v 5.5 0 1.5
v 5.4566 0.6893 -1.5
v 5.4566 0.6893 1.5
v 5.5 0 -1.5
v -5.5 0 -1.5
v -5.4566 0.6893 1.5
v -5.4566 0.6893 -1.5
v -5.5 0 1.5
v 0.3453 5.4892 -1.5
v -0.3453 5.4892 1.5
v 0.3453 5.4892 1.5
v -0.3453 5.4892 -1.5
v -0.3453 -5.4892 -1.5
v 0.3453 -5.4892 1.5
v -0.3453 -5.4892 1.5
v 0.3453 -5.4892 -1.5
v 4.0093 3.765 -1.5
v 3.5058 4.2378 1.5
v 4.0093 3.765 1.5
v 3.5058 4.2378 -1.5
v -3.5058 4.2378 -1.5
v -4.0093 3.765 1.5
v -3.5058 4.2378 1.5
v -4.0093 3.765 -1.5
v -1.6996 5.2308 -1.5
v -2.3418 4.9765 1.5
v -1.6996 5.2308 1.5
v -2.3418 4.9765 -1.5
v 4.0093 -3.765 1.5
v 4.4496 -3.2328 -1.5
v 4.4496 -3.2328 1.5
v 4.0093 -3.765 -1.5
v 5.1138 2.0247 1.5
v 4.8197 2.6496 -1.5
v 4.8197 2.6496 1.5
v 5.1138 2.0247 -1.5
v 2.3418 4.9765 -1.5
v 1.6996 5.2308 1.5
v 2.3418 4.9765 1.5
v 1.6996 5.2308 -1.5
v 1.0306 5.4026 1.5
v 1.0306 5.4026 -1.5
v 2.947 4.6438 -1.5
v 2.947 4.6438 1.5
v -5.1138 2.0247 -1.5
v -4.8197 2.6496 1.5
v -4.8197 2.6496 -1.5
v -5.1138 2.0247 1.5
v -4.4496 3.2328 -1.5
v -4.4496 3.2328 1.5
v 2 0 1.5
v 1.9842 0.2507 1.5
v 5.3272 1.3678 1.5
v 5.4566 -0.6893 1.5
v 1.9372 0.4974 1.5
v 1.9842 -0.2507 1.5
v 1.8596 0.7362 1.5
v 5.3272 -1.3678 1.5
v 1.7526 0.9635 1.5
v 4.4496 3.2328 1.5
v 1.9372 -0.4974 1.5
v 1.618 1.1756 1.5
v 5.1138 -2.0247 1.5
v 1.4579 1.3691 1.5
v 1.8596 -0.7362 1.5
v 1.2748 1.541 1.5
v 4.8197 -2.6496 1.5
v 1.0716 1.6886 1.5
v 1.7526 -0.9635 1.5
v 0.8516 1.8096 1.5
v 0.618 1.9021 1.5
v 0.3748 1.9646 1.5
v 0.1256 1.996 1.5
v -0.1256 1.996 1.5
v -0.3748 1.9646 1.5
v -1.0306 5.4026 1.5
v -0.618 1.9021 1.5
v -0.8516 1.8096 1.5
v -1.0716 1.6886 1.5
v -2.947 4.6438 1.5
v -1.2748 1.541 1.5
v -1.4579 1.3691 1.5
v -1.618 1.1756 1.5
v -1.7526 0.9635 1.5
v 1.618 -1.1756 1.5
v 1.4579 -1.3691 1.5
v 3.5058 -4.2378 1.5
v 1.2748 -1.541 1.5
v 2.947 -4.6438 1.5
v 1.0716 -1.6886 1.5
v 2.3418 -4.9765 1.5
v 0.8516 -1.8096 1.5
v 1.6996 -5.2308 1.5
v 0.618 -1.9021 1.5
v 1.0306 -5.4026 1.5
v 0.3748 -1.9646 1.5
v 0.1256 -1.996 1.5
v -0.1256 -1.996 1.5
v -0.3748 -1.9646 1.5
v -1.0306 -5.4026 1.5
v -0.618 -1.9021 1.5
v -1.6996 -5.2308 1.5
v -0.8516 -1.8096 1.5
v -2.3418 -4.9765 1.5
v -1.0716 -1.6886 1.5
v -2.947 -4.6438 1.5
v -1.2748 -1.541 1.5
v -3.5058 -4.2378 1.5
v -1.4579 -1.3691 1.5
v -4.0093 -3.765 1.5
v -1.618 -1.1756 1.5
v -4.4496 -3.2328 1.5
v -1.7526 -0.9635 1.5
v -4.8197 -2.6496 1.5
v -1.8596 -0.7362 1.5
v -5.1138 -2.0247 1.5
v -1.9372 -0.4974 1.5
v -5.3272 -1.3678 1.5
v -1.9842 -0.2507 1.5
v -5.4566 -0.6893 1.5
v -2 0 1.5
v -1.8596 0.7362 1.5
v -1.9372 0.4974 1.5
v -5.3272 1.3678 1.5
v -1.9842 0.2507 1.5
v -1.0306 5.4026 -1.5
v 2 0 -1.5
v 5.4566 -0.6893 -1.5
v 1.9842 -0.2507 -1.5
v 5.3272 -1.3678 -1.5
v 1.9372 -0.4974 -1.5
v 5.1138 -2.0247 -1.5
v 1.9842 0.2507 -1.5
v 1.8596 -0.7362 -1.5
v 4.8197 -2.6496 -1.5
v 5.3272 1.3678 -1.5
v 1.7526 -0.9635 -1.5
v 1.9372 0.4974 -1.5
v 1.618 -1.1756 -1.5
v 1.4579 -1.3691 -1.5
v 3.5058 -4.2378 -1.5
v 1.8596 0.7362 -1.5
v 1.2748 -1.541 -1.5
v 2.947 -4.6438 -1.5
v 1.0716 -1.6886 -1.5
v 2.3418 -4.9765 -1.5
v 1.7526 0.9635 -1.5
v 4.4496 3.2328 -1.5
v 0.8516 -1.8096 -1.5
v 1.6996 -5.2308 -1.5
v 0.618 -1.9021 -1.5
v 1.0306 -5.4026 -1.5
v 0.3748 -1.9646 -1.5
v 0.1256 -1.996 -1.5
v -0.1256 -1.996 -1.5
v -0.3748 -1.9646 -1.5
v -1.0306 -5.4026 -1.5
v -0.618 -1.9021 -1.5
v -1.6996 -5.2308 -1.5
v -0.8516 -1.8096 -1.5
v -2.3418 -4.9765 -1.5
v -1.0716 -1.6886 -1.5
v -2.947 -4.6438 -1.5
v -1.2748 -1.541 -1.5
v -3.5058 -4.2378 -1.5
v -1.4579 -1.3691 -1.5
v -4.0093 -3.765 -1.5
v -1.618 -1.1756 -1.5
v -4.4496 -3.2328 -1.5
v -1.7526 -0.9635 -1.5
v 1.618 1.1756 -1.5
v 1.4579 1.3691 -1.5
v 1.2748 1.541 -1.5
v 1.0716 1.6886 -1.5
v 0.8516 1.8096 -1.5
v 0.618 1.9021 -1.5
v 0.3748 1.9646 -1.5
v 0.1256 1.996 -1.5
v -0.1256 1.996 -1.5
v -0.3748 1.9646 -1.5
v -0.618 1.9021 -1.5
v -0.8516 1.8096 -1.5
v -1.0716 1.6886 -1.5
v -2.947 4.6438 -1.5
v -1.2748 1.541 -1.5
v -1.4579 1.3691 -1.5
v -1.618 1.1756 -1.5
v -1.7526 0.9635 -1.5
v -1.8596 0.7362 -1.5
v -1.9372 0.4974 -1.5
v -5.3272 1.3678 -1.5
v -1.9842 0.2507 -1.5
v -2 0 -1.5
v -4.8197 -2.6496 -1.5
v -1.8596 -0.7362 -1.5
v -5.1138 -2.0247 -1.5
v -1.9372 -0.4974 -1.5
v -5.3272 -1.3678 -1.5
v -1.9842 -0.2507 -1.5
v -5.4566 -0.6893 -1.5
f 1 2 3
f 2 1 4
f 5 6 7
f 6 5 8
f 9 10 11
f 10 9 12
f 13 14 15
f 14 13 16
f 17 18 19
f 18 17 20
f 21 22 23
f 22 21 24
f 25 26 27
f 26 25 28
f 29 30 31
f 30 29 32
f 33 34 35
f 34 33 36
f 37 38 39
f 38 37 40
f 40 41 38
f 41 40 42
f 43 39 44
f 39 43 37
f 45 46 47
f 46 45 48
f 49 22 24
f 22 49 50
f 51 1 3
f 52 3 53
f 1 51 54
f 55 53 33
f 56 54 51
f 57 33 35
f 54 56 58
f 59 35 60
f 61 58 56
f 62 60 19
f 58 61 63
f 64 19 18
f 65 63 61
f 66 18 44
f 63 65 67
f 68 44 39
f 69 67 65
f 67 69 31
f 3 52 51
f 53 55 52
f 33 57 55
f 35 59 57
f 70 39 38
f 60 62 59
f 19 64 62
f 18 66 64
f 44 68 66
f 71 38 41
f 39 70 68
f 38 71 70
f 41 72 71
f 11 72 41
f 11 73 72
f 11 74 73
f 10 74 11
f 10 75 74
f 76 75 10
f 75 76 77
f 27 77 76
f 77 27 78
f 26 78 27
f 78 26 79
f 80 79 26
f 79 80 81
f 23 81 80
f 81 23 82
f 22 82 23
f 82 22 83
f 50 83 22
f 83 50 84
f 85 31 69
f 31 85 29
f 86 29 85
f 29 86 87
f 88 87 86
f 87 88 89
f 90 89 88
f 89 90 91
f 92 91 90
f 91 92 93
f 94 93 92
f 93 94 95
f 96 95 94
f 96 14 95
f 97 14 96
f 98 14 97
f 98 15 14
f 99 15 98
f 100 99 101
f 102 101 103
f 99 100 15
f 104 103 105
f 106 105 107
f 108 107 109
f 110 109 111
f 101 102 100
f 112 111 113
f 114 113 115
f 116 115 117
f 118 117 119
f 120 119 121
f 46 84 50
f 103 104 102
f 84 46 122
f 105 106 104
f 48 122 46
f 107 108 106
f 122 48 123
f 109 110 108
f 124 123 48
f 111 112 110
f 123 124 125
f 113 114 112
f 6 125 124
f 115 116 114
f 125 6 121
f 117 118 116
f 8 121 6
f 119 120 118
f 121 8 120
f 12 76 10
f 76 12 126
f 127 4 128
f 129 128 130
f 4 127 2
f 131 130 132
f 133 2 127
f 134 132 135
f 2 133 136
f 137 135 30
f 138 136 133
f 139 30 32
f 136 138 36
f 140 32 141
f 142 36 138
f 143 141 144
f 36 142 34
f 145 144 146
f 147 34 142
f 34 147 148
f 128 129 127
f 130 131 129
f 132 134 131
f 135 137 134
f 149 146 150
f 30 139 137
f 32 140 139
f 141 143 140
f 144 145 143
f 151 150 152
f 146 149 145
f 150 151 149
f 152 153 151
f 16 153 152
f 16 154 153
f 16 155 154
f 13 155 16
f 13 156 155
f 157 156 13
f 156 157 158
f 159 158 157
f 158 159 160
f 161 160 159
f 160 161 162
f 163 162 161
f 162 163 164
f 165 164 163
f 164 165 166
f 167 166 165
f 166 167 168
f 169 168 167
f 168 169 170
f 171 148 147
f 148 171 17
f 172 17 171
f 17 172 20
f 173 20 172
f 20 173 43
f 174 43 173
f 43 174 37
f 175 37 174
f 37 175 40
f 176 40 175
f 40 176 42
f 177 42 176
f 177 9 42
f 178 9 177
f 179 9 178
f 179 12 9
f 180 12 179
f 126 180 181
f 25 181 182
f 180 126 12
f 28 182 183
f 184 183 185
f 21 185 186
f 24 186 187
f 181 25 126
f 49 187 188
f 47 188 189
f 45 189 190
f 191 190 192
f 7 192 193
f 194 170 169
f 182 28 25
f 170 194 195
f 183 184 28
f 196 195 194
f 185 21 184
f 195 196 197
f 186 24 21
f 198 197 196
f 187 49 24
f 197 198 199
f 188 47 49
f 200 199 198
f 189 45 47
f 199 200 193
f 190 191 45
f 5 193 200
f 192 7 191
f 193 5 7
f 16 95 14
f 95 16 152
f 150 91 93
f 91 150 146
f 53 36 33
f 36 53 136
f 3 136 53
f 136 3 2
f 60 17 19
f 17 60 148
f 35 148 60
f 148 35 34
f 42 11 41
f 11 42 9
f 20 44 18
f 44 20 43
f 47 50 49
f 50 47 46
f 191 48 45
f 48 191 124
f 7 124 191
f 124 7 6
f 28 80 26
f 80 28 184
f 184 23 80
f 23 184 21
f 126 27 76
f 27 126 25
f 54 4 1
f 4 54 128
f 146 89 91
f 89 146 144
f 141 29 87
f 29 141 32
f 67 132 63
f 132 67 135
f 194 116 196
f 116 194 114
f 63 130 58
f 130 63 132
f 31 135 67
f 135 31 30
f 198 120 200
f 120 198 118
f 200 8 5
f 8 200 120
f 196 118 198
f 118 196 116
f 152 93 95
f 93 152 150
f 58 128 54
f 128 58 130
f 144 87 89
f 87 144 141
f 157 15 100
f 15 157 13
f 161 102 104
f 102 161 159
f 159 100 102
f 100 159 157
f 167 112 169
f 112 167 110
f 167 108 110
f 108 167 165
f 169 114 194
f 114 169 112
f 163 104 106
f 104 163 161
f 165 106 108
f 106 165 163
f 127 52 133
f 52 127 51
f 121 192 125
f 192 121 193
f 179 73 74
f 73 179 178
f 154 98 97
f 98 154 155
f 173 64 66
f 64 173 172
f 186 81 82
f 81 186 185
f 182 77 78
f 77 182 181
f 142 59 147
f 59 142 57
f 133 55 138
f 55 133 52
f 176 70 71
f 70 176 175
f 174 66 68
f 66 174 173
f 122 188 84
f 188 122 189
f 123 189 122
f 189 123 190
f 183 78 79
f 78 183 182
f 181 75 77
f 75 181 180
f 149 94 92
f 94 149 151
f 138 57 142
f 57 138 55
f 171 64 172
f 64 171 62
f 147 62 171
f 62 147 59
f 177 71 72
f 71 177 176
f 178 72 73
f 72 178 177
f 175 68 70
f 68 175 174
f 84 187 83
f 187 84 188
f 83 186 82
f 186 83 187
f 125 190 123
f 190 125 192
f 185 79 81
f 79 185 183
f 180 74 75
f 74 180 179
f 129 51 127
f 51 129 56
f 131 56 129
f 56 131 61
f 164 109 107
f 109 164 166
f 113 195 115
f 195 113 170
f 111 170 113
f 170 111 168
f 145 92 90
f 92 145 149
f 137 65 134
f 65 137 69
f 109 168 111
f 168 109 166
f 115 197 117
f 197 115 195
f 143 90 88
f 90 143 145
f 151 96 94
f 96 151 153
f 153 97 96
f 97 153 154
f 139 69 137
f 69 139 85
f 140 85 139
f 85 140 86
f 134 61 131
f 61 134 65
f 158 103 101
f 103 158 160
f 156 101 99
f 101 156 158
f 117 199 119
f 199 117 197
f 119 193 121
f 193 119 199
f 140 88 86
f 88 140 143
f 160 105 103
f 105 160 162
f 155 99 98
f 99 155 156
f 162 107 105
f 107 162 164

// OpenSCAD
$fn = 50;


difference() {
	union() {
		translate(v = [0, 0, -1.5000000000]) {
			cylinder(h = 3, r = 5.5000000000);
		}
	}
	union() {
		translate(v = [0, 0, -100.0000000000]) {
			cylinder(h = 200, r = 2);
		}
	}
}
